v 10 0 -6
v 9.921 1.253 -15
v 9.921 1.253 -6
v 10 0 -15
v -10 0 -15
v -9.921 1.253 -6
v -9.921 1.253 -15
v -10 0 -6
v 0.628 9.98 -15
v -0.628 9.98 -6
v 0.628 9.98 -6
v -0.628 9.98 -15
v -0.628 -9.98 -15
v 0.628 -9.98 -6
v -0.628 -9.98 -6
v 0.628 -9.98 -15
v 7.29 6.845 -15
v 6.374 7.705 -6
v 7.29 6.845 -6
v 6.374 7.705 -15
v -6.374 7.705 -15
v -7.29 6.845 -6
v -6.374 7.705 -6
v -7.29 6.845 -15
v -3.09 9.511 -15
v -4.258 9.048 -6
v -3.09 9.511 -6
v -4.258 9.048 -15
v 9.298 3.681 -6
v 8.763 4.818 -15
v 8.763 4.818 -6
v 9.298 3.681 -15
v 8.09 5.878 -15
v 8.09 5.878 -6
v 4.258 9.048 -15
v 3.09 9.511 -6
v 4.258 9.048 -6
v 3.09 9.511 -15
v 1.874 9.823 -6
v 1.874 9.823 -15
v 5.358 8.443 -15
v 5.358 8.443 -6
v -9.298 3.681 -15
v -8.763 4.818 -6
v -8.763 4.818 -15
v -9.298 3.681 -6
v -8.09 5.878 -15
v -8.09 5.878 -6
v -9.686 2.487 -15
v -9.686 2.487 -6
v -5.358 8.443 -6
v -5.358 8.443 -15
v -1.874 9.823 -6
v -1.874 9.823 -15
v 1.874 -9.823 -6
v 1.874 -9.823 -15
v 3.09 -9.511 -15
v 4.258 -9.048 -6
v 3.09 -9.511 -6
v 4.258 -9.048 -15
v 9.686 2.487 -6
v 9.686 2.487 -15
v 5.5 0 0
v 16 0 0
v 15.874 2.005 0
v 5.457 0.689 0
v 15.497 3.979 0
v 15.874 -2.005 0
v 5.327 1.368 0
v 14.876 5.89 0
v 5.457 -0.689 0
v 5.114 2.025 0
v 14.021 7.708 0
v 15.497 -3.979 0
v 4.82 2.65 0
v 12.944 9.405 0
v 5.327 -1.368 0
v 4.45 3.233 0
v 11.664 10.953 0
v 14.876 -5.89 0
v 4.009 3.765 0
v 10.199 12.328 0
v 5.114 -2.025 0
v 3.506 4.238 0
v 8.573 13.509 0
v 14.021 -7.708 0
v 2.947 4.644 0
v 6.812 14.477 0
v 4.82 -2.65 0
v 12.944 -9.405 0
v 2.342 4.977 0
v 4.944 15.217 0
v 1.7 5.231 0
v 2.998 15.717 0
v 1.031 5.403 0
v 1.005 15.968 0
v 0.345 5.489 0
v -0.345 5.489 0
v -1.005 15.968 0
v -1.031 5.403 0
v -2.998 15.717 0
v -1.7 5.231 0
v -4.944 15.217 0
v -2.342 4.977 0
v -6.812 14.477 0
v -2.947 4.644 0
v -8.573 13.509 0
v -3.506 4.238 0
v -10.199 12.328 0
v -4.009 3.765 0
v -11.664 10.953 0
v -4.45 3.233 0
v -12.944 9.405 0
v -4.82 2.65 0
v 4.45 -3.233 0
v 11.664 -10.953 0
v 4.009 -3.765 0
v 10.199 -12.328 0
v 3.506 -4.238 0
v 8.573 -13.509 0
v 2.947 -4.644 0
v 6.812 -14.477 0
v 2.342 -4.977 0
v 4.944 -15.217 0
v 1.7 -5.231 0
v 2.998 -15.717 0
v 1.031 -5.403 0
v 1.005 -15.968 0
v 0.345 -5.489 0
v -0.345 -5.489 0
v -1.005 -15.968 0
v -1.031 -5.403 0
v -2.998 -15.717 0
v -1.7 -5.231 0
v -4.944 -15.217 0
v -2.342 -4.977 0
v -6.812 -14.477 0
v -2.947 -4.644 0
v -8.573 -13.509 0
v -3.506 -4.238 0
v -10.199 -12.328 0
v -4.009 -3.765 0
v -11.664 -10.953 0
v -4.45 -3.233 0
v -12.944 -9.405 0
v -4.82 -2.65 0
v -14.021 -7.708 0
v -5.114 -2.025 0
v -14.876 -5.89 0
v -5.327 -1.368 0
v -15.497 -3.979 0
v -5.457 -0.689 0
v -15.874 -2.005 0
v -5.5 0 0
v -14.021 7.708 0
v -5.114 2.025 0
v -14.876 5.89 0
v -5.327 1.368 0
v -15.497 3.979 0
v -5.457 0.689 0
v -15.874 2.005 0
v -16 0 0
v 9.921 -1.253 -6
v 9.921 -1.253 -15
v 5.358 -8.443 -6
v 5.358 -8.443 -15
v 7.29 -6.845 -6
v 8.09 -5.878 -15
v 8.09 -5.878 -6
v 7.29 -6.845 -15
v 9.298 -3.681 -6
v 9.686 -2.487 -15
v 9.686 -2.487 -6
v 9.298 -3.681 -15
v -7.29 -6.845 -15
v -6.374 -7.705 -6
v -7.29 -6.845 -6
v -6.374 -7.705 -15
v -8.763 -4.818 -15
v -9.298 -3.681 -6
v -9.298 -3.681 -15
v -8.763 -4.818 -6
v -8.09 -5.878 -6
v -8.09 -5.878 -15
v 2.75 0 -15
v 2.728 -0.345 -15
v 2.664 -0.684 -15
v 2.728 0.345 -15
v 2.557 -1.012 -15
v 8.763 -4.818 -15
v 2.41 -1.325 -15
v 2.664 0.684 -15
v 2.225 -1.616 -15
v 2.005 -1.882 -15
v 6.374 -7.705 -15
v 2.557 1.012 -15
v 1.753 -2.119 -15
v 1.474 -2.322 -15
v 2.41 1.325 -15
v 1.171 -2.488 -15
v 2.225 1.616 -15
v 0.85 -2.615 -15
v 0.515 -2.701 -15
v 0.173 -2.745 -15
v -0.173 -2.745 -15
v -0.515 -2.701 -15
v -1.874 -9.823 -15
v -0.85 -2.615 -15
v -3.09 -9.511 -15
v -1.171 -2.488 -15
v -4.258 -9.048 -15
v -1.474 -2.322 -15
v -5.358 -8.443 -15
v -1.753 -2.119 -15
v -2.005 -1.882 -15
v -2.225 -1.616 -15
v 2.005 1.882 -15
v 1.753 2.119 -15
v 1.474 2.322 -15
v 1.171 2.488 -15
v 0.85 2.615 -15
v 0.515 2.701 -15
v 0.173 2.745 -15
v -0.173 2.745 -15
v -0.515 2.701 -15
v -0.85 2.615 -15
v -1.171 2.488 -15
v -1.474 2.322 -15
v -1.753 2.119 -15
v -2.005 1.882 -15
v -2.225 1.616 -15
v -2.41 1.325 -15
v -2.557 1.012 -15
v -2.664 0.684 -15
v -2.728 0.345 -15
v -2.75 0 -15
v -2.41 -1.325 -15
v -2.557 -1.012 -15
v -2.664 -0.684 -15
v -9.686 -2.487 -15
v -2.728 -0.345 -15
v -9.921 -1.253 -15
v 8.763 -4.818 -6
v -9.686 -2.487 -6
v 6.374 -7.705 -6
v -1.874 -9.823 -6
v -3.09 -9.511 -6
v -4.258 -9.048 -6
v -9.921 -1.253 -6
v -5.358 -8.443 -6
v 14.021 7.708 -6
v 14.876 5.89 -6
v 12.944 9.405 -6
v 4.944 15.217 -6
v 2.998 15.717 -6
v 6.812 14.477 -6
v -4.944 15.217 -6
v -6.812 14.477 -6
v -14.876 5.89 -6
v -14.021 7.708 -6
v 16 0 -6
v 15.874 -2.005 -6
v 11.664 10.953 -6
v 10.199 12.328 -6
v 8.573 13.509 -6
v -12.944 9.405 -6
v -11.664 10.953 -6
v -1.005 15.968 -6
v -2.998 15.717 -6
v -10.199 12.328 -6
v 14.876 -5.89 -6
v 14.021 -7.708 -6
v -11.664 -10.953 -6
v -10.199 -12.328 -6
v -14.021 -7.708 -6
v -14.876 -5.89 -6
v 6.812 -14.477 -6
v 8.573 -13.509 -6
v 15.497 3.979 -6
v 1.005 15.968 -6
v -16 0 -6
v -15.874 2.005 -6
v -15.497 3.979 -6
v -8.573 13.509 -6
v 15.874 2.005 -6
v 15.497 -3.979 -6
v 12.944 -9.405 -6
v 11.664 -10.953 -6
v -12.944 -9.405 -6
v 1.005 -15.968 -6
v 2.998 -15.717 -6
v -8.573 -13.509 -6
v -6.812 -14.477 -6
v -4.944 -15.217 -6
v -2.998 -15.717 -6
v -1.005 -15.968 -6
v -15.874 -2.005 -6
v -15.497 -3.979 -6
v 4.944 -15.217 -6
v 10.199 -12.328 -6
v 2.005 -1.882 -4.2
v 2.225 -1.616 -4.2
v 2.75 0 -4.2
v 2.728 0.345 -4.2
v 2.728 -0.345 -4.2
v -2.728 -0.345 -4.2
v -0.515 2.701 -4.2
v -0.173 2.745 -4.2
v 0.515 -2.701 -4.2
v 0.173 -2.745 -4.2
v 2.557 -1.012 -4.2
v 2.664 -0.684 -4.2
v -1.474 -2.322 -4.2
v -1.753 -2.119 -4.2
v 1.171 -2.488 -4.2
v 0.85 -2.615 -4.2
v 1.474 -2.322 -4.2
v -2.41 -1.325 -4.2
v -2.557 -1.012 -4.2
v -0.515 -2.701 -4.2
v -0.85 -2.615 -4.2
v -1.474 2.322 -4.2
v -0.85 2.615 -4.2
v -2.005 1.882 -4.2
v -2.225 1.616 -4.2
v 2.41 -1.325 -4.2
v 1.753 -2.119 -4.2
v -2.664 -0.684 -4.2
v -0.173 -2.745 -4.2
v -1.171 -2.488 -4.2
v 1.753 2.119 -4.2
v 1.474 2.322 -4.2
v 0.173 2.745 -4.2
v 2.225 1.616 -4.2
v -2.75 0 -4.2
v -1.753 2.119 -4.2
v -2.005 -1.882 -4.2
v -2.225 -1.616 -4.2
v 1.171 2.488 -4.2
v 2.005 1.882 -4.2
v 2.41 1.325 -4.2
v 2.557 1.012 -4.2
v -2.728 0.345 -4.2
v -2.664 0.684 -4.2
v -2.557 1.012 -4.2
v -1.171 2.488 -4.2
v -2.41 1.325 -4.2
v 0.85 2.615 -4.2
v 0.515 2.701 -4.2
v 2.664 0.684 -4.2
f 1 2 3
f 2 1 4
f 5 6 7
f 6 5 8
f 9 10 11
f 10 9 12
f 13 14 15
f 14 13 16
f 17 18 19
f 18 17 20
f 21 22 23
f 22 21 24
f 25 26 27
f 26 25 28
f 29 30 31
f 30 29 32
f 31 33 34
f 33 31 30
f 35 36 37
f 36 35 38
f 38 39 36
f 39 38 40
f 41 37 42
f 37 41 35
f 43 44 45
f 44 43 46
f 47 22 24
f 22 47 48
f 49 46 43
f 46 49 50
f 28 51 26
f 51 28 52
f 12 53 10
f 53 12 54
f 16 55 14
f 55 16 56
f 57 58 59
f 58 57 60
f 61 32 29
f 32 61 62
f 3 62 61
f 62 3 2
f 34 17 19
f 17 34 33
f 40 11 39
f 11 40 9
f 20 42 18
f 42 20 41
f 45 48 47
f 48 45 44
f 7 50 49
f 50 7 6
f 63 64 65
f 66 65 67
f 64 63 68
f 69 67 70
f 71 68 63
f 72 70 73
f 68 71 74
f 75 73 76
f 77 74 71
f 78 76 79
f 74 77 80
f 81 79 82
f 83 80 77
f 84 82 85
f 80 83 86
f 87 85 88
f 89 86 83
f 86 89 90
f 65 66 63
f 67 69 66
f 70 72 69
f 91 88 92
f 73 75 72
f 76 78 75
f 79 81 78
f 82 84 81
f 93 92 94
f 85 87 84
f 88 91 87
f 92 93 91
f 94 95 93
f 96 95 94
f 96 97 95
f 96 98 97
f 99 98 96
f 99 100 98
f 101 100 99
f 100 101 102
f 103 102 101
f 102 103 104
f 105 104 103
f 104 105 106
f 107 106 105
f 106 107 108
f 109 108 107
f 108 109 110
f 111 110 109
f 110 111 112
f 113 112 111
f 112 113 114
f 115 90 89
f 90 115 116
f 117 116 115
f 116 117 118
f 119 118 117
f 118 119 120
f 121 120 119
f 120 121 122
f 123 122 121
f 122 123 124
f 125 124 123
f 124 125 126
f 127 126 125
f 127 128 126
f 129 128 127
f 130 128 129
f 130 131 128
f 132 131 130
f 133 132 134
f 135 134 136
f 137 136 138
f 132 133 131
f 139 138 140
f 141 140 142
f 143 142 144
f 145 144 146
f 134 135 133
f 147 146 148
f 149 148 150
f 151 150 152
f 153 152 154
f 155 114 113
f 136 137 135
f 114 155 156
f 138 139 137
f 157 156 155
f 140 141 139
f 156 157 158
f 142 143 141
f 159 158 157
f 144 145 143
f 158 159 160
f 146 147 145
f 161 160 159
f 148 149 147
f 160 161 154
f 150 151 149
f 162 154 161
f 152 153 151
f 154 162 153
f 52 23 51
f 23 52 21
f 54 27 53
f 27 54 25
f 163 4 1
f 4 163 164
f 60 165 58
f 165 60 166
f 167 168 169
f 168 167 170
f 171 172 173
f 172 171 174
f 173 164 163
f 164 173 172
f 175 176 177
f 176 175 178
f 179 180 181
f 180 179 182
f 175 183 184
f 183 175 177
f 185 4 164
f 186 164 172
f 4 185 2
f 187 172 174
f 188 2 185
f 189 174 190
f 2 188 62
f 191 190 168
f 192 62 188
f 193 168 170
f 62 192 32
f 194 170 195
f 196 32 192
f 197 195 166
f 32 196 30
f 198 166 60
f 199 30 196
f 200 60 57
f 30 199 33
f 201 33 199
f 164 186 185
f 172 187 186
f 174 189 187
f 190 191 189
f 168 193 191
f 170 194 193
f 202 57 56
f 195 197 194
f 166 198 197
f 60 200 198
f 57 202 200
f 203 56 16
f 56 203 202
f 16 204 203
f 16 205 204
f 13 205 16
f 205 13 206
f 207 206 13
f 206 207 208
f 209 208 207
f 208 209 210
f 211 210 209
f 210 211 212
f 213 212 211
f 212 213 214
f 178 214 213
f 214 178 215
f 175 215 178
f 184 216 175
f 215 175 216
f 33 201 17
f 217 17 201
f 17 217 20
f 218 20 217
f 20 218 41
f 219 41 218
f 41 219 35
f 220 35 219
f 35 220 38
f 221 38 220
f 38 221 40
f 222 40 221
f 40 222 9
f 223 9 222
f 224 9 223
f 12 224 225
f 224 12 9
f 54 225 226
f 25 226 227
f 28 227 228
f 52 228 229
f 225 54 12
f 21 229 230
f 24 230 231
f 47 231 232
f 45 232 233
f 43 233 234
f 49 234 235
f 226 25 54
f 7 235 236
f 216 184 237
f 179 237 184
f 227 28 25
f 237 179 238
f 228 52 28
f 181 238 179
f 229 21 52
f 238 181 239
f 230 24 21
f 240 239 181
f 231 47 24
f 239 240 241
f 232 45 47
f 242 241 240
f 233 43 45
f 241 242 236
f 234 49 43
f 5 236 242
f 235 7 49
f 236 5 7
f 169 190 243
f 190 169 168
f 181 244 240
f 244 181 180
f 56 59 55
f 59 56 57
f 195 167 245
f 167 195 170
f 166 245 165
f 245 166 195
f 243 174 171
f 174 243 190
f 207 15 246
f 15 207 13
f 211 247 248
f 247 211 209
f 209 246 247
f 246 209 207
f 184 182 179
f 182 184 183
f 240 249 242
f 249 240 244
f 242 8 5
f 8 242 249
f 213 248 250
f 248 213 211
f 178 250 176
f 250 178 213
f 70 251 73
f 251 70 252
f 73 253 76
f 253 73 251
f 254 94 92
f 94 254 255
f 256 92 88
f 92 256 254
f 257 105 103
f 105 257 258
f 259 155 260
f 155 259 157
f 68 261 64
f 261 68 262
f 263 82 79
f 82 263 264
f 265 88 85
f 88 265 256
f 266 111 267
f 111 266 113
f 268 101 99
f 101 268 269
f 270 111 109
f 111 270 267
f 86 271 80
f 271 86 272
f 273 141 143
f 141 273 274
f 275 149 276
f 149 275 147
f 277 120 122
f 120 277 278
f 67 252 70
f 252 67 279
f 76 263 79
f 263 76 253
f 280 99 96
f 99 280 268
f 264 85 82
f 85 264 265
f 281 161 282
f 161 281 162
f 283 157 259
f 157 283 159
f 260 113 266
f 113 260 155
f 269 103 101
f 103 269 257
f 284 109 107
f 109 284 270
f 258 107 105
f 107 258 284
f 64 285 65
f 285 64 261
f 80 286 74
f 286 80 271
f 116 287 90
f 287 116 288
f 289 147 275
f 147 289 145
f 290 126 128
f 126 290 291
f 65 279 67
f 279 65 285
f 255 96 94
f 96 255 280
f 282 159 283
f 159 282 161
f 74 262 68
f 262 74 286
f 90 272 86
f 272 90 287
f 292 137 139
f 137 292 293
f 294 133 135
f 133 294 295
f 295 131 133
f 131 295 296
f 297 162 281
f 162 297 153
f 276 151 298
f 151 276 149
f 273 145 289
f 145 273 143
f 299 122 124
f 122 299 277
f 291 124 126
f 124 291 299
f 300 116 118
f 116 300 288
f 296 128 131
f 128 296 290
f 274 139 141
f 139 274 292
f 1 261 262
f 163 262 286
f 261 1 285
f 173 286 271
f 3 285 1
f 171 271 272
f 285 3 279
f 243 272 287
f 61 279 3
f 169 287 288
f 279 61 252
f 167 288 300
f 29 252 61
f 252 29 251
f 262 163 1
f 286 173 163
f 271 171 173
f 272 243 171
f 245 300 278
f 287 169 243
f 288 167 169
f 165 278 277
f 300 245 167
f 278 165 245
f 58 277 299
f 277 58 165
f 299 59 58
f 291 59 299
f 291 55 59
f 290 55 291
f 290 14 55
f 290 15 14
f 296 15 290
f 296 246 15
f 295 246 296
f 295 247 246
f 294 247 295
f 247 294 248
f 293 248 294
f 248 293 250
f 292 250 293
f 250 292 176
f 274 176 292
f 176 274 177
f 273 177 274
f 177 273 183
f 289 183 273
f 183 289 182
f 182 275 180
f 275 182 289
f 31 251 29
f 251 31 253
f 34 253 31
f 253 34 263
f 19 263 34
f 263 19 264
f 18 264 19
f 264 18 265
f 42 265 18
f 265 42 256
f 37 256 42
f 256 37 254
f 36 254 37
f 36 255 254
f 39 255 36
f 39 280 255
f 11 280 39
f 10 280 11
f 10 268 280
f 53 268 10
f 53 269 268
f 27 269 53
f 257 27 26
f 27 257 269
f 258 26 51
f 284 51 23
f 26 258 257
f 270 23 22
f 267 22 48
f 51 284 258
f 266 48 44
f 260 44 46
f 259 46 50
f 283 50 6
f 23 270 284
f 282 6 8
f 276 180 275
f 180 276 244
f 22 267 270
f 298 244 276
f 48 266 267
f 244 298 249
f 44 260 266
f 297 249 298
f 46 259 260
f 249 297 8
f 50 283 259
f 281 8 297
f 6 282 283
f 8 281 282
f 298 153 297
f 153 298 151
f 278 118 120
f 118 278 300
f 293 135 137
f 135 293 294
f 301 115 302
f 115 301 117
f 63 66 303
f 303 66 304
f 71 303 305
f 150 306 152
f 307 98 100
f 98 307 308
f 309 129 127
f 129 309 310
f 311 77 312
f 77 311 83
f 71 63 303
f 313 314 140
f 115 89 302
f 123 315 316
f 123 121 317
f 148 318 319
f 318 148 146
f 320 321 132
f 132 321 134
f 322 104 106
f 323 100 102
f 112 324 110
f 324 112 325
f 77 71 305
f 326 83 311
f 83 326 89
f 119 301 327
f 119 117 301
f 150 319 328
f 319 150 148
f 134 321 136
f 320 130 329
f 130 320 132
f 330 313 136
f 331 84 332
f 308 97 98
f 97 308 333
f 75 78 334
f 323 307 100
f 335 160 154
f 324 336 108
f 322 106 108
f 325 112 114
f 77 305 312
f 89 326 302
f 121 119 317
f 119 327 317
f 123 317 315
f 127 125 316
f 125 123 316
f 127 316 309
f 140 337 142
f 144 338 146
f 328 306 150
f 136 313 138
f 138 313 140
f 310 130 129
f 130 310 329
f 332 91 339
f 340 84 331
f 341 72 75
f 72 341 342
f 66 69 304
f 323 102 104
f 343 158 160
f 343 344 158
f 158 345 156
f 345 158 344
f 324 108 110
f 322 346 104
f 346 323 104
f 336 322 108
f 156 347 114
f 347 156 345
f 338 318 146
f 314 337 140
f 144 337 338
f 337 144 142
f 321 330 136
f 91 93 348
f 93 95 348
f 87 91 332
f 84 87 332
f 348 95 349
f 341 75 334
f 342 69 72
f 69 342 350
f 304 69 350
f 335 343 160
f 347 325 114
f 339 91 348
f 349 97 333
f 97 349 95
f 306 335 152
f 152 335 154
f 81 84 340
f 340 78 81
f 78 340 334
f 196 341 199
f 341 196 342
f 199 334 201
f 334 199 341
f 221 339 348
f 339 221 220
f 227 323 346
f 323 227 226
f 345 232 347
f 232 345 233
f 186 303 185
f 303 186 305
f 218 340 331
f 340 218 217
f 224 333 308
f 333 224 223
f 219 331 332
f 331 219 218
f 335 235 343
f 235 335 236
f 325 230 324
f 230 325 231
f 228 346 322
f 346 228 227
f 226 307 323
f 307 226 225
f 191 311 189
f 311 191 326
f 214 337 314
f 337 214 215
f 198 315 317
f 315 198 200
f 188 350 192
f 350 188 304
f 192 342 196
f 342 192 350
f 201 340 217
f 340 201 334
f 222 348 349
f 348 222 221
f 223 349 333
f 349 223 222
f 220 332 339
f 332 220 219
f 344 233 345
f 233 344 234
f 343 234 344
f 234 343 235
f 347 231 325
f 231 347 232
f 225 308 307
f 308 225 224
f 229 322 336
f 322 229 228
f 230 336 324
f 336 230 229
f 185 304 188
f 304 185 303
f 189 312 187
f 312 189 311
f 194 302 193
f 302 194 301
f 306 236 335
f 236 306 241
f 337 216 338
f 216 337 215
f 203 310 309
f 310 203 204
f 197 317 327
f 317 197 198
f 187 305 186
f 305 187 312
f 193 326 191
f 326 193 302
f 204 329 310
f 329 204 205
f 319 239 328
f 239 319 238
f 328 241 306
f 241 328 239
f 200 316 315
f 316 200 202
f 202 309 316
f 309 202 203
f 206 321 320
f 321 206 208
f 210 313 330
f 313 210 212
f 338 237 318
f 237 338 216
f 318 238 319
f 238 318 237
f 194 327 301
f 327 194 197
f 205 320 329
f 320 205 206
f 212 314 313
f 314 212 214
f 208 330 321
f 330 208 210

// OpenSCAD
$fn = 50;


difference() {
	union() {
		translate(v = [0, 0, -15.0000000000]) {
			cylinder(h = 15, r = 10.0000000000);
		}
		translate(v = [0, 0, -6.0000000000]) {
			cylinder(h = 6, r = 16.0000000000);
		}
	}
	union() {
		translate(v = [0, 0, 0]) {
			rotate(a = [0, 0, 0]) {
				difference() {
					union() {
						#translate(v = [0, 0, -15.0000000000]) {
							cylinder(h = 15, r = 2.2500000000);
						}
						#translate(v = [0, 0, -4.2000000000]) {
							cylinder(h = 4.2000000000, r1 = 2.7500000000, r2 = 5.5000000000);
						}
						#translate(v = [0, 0, -15.0000000000]) {
							cylinder(h = 15, r = 2.7500000000);
						}
						#translate(v = [0, 0, -15.0000000000]) {
							cylinder(h = 15, r = 2.2500000000);
						}
					}
					union();
				}
			}
		}
	}
}
